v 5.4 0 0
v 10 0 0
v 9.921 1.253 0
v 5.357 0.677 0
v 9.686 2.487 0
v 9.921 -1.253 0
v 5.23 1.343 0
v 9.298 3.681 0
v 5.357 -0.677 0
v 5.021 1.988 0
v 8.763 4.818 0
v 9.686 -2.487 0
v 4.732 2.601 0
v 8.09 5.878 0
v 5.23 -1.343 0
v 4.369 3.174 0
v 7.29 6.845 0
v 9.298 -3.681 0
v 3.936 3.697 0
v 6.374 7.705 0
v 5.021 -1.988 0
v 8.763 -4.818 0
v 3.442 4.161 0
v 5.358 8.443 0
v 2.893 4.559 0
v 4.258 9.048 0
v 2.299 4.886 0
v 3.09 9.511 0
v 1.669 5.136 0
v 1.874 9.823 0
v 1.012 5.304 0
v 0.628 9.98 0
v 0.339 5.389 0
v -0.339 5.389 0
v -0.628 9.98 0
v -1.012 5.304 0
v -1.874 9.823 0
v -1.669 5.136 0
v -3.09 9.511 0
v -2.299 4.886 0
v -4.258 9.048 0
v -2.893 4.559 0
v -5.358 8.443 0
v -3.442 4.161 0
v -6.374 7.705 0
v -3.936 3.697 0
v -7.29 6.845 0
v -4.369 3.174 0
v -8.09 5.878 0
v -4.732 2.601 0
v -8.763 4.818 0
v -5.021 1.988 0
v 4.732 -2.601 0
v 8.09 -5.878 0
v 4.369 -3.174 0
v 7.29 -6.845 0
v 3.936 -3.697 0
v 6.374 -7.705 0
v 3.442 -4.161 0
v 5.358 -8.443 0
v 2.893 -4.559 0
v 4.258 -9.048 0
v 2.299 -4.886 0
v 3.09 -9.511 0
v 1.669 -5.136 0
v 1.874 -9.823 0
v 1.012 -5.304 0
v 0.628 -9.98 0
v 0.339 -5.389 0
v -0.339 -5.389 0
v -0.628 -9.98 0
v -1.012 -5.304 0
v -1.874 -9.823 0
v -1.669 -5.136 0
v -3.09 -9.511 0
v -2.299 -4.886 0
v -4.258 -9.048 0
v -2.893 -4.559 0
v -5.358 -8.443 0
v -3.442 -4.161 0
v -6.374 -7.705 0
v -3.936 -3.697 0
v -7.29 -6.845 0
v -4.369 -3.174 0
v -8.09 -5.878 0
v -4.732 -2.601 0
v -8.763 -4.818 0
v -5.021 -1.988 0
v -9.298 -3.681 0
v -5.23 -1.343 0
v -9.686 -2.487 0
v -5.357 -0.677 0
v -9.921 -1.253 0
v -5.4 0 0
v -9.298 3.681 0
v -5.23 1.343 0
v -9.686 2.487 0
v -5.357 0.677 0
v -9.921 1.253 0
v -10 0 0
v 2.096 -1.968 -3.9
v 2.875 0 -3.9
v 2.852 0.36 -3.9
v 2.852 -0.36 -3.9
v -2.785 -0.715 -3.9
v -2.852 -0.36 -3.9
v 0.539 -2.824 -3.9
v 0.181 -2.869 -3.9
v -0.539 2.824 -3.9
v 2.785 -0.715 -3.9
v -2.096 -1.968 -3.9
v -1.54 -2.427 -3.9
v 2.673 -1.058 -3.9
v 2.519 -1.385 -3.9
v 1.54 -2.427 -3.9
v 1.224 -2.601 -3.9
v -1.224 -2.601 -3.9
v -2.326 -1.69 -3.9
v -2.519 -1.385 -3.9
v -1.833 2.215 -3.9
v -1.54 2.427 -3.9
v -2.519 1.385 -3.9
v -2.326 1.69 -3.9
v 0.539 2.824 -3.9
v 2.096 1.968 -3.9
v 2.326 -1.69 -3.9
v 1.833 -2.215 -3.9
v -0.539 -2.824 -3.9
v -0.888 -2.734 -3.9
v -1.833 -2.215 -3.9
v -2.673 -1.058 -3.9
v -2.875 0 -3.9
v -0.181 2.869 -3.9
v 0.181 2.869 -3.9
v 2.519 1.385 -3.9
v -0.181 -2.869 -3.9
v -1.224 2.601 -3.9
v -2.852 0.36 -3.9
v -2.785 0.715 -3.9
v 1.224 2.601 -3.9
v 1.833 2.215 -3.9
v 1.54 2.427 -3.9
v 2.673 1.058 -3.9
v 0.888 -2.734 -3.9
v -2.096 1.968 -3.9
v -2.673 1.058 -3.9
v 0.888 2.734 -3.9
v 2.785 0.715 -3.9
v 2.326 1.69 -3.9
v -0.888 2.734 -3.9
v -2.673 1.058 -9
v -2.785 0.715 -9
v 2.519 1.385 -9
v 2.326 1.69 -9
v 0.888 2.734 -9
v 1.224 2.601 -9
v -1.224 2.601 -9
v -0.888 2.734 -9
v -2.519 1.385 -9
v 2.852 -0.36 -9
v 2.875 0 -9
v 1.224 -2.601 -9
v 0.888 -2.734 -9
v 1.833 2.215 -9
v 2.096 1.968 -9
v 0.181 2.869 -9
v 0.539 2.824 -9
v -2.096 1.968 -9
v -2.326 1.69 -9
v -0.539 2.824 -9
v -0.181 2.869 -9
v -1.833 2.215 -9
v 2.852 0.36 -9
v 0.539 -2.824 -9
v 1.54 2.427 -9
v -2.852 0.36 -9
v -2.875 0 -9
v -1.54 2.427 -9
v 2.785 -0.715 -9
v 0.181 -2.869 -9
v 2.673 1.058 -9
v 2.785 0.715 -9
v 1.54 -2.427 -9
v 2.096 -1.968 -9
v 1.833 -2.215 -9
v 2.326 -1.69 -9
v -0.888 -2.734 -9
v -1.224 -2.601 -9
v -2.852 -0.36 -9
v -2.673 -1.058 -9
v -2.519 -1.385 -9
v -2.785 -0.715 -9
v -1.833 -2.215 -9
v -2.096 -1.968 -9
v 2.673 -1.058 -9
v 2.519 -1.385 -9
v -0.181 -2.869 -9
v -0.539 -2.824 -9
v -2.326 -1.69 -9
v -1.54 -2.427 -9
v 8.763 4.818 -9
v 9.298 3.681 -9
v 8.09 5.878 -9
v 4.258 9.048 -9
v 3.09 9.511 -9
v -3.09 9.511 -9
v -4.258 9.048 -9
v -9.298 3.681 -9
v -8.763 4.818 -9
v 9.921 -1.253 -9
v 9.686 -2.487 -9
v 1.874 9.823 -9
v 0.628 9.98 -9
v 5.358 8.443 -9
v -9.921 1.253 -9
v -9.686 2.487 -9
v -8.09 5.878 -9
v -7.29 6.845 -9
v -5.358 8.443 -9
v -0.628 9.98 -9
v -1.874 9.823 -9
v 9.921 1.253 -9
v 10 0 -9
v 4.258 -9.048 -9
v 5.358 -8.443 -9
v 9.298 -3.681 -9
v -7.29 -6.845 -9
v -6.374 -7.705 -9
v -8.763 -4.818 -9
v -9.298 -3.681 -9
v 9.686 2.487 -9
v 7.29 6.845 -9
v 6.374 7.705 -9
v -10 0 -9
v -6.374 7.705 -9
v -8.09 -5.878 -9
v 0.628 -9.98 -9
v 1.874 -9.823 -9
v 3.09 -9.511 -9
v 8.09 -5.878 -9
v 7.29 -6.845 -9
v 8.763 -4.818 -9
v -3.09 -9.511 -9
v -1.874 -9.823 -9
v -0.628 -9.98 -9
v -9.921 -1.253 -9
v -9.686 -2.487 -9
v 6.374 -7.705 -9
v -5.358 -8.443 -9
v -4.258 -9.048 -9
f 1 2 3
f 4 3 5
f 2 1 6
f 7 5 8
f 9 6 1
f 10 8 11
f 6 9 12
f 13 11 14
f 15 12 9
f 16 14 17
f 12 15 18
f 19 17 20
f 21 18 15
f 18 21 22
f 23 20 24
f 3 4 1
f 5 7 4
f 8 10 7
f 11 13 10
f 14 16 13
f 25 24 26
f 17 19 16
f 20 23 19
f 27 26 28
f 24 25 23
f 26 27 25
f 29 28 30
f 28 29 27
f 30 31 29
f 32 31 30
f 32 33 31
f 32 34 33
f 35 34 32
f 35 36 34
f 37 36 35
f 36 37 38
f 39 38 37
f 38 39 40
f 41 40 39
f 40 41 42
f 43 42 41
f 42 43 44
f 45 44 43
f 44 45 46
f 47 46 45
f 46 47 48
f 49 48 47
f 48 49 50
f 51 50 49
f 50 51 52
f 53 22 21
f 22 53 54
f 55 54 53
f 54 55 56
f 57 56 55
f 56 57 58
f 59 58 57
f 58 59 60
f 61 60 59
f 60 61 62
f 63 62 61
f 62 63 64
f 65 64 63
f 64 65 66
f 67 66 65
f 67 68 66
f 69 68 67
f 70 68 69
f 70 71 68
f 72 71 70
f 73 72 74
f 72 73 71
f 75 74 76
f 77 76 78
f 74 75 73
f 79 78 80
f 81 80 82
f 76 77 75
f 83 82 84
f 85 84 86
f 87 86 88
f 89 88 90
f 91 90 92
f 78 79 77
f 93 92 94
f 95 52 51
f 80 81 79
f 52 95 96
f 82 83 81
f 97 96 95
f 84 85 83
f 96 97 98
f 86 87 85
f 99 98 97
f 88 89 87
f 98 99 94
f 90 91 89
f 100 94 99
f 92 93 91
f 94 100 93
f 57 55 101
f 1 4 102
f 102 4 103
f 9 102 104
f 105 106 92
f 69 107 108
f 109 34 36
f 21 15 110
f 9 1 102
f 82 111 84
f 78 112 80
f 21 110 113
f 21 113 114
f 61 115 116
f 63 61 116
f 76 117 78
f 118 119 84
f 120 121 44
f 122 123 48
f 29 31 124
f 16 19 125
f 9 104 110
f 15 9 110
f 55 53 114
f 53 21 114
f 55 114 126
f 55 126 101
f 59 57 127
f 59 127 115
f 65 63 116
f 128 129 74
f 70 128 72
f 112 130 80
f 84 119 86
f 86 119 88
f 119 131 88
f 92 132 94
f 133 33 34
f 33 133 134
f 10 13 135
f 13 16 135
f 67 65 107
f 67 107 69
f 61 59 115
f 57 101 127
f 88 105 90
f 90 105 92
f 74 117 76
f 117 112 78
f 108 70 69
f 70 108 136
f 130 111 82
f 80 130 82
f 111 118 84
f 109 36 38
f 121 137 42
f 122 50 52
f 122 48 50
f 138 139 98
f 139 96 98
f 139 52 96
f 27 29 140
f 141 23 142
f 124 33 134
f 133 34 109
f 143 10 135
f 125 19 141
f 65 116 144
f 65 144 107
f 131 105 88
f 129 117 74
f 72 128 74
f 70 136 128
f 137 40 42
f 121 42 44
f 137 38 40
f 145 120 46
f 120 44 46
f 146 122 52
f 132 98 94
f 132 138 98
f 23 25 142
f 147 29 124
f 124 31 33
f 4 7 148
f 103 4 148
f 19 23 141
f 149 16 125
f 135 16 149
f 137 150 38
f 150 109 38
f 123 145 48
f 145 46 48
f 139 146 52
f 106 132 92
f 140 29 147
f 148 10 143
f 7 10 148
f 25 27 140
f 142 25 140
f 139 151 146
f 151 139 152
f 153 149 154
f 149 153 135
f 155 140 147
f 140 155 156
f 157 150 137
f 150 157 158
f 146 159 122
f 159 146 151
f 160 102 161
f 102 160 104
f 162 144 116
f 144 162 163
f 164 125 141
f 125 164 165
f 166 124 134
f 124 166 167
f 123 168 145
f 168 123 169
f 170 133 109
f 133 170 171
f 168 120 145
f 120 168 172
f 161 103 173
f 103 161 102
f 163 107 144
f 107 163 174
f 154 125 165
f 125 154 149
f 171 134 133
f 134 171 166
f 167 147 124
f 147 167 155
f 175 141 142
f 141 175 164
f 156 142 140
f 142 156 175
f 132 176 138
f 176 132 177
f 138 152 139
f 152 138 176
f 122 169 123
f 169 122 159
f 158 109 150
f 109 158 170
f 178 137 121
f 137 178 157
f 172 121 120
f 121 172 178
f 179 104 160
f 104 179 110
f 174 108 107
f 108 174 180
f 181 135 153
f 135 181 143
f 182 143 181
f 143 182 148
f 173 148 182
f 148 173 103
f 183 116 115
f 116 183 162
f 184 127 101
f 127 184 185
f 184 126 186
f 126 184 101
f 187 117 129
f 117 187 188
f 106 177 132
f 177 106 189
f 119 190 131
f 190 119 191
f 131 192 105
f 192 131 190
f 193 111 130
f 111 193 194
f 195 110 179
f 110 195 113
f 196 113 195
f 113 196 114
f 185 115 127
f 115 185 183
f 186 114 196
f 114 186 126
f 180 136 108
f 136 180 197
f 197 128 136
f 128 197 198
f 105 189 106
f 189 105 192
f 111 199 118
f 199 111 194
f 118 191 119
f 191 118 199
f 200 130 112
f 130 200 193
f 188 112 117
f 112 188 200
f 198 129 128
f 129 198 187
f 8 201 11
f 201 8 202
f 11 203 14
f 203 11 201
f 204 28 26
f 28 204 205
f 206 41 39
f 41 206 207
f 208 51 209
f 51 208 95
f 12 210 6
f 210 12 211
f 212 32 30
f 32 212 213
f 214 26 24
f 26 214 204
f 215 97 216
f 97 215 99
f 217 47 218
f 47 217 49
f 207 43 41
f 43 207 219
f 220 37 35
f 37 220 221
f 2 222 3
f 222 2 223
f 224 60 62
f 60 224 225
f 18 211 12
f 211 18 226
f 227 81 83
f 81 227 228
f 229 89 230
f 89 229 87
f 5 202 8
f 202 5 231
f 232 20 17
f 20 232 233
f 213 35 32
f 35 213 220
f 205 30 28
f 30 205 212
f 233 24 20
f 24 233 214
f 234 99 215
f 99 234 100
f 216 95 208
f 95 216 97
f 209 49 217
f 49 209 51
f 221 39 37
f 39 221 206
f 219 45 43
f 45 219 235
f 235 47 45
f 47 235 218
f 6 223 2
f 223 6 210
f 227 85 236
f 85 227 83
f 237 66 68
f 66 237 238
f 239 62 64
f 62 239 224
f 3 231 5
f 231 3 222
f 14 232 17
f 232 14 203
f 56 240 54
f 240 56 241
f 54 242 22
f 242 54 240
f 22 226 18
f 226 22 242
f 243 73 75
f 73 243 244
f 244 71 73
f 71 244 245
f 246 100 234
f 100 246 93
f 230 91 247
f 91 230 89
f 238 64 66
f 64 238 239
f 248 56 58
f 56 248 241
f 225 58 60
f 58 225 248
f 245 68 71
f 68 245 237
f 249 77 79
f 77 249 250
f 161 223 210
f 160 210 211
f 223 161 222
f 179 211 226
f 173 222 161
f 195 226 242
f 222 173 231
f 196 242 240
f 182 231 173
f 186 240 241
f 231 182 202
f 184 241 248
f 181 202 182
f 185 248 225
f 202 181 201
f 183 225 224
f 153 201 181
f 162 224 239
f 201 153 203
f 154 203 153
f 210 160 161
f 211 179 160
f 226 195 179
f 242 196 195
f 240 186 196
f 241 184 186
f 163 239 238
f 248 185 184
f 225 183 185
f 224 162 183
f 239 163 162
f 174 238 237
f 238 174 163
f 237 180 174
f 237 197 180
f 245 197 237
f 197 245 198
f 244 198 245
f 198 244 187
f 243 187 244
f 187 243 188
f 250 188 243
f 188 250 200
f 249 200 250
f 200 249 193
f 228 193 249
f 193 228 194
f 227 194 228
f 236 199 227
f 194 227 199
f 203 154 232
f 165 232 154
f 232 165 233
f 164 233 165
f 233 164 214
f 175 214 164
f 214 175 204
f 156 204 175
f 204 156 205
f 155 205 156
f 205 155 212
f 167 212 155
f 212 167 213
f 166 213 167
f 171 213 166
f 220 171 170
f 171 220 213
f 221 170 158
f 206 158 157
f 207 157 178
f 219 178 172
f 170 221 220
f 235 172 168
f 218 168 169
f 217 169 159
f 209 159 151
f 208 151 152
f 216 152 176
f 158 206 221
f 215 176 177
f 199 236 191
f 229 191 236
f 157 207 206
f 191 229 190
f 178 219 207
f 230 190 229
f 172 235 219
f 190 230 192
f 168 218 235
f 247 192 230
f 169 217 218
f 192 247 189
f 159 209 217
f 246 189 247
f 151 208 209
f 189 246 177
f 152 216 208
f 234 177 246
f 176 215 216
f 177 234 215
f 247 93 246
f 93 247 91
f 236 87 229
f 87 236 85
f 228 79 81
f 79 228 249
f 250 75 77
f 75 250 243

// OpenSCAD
$fn = 50;


difference() {
	union() {
		translate(v = [0, 0, -9.0000000000]) {
			cylinder(h = 9, r = 10.0000000000);
		}
	}
	union() {
		translate(v = [0, 0, 0]) {
			rotate(a = [0, 0, 0]) {
				difference() {
					union() {
						translate(v = [0, 0, -12.0000000000]) {
							cylinder(h = 12, r = 2.6000000000);
						}
						translate(v = [0, 0, -3.9000000000]) {
							cylinder(h = 3.9000000000, r1 = 2.8750000000, r2 = 5.4000000000);
						}
						translate(v = [0, 0, -12.0000000000]) {
							cylinder(h = 12, r = 2.8750000000);
						}
						translate(v = [0, 0, -12.0000000000]) {
							cylinder(h = 12, r = 2.6000000000);
						}
					}
					union();
				}
			}
		}
	}
}
